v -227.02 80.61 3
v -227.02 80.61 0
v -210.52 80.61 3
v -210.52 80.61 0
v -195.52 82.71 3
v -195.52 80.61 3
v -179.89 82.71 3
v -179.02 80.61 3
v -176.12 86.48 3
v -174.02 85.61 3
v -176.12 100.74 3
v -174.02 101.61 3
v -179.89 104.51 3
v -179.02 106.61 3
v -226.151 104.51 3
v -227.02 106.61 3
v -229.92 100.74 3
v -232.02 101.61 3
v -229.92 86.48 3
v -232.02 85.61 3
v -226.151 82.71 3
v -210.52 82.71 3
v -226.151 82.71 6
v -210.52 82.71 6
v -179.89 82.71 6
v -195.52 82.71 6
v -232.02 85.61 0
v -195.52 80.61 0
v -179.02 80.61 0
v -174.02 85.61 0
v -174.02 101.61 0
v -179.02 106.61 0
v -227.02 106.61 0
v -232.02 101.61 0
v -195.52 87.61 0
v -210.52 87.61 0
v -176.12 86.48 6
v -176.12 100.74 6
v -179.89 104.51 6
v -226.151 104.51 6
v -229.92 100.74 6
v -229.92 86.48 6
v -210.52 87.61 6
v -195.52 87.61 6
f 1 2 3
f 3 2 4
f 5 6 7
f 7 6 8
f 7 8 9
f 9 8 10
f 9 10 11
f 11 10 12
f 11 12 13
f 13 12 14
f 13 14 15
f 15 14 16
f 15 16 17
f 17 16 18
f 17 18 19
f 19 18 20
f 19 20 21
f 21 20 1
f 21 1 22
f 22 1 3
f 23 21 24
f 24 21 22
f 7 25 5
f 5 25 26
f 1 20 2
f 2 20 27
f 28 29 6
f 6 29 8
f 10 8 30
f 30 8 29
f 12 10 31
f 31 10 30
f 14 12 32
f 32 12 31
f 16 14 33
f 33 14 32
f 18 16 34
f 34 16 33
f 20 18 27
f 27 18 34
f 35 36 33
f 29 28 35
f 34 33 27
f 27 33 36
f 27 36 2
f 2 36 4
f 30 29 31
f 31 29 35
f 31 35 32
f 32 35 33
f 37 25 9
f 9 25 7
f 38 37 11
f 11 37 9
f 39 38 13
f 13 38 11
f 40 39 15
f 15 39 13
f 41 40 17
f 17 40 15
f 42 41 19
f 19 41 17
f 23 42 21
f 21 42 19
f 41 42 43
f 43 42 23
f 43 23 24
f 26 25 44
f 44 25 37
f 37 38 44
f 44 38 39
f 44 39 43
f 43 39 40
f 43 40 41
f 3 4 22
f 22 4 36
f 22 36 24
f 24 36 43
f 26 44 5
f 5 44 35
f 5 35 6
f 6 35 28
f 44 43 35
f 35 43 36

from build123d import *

# Parameters (mm, degrees)
PANEL_DEPTH        = 3
INSERT_DEPTH       = 3
SKETCH3_W          = 15
SKETCH3_H          = 7
CUT_EXTRUDE1_DEPTH = 256.411638929


with BuildPart() as part:
    # Sketch1 → panel (new body)
    with BuildSketch(Plane.XY):
        Polygon((-232.020441826, 85.609661267), (-232.020441826, 101.609661267), (-227.020441826, 106.609661267), (-179.020441826, 106.609661267), (-174.020441826, 101.609661267), (-174.020441826, 85.609661267), (-179.020441826, 80.609661267), (-227.020441826, 80.609661267), align=None)
    extrude(amount=PANEL_DEPTH)

    # Sketch2 → insert (add)
    with BuildSketch(Plane(origin=(0, 0, 3), x_dir=(-1, 0, 0), z_dir=(0, 0, -1))):
        Polygon((176.120441826, 86.479509748), (176.120441826, 100.739812786), (179.890290307, 104.509661267), (226.150593345, 104.509661267), (229.920441826, 100.739812786), (229.920441826, 86.479509748), (226.150593345, 82.709661267), (179.890290307, 82.709661267), align=None)
    extrude(amount=-INSERT_DEPTH)

    # Sketch3 → Cut-Extrude1 (cut, through all)
    with BuildSketch(Plane.XY):
        with Locations((-203.020441826, 84.109661267)):
            Rectangle(SKETCH3_W, SKETCH3_H)
    extrude(amount=CUT_EXTRUDE1_DEPTH, mode=Mode.SUBTRACT)


solid = part.part
